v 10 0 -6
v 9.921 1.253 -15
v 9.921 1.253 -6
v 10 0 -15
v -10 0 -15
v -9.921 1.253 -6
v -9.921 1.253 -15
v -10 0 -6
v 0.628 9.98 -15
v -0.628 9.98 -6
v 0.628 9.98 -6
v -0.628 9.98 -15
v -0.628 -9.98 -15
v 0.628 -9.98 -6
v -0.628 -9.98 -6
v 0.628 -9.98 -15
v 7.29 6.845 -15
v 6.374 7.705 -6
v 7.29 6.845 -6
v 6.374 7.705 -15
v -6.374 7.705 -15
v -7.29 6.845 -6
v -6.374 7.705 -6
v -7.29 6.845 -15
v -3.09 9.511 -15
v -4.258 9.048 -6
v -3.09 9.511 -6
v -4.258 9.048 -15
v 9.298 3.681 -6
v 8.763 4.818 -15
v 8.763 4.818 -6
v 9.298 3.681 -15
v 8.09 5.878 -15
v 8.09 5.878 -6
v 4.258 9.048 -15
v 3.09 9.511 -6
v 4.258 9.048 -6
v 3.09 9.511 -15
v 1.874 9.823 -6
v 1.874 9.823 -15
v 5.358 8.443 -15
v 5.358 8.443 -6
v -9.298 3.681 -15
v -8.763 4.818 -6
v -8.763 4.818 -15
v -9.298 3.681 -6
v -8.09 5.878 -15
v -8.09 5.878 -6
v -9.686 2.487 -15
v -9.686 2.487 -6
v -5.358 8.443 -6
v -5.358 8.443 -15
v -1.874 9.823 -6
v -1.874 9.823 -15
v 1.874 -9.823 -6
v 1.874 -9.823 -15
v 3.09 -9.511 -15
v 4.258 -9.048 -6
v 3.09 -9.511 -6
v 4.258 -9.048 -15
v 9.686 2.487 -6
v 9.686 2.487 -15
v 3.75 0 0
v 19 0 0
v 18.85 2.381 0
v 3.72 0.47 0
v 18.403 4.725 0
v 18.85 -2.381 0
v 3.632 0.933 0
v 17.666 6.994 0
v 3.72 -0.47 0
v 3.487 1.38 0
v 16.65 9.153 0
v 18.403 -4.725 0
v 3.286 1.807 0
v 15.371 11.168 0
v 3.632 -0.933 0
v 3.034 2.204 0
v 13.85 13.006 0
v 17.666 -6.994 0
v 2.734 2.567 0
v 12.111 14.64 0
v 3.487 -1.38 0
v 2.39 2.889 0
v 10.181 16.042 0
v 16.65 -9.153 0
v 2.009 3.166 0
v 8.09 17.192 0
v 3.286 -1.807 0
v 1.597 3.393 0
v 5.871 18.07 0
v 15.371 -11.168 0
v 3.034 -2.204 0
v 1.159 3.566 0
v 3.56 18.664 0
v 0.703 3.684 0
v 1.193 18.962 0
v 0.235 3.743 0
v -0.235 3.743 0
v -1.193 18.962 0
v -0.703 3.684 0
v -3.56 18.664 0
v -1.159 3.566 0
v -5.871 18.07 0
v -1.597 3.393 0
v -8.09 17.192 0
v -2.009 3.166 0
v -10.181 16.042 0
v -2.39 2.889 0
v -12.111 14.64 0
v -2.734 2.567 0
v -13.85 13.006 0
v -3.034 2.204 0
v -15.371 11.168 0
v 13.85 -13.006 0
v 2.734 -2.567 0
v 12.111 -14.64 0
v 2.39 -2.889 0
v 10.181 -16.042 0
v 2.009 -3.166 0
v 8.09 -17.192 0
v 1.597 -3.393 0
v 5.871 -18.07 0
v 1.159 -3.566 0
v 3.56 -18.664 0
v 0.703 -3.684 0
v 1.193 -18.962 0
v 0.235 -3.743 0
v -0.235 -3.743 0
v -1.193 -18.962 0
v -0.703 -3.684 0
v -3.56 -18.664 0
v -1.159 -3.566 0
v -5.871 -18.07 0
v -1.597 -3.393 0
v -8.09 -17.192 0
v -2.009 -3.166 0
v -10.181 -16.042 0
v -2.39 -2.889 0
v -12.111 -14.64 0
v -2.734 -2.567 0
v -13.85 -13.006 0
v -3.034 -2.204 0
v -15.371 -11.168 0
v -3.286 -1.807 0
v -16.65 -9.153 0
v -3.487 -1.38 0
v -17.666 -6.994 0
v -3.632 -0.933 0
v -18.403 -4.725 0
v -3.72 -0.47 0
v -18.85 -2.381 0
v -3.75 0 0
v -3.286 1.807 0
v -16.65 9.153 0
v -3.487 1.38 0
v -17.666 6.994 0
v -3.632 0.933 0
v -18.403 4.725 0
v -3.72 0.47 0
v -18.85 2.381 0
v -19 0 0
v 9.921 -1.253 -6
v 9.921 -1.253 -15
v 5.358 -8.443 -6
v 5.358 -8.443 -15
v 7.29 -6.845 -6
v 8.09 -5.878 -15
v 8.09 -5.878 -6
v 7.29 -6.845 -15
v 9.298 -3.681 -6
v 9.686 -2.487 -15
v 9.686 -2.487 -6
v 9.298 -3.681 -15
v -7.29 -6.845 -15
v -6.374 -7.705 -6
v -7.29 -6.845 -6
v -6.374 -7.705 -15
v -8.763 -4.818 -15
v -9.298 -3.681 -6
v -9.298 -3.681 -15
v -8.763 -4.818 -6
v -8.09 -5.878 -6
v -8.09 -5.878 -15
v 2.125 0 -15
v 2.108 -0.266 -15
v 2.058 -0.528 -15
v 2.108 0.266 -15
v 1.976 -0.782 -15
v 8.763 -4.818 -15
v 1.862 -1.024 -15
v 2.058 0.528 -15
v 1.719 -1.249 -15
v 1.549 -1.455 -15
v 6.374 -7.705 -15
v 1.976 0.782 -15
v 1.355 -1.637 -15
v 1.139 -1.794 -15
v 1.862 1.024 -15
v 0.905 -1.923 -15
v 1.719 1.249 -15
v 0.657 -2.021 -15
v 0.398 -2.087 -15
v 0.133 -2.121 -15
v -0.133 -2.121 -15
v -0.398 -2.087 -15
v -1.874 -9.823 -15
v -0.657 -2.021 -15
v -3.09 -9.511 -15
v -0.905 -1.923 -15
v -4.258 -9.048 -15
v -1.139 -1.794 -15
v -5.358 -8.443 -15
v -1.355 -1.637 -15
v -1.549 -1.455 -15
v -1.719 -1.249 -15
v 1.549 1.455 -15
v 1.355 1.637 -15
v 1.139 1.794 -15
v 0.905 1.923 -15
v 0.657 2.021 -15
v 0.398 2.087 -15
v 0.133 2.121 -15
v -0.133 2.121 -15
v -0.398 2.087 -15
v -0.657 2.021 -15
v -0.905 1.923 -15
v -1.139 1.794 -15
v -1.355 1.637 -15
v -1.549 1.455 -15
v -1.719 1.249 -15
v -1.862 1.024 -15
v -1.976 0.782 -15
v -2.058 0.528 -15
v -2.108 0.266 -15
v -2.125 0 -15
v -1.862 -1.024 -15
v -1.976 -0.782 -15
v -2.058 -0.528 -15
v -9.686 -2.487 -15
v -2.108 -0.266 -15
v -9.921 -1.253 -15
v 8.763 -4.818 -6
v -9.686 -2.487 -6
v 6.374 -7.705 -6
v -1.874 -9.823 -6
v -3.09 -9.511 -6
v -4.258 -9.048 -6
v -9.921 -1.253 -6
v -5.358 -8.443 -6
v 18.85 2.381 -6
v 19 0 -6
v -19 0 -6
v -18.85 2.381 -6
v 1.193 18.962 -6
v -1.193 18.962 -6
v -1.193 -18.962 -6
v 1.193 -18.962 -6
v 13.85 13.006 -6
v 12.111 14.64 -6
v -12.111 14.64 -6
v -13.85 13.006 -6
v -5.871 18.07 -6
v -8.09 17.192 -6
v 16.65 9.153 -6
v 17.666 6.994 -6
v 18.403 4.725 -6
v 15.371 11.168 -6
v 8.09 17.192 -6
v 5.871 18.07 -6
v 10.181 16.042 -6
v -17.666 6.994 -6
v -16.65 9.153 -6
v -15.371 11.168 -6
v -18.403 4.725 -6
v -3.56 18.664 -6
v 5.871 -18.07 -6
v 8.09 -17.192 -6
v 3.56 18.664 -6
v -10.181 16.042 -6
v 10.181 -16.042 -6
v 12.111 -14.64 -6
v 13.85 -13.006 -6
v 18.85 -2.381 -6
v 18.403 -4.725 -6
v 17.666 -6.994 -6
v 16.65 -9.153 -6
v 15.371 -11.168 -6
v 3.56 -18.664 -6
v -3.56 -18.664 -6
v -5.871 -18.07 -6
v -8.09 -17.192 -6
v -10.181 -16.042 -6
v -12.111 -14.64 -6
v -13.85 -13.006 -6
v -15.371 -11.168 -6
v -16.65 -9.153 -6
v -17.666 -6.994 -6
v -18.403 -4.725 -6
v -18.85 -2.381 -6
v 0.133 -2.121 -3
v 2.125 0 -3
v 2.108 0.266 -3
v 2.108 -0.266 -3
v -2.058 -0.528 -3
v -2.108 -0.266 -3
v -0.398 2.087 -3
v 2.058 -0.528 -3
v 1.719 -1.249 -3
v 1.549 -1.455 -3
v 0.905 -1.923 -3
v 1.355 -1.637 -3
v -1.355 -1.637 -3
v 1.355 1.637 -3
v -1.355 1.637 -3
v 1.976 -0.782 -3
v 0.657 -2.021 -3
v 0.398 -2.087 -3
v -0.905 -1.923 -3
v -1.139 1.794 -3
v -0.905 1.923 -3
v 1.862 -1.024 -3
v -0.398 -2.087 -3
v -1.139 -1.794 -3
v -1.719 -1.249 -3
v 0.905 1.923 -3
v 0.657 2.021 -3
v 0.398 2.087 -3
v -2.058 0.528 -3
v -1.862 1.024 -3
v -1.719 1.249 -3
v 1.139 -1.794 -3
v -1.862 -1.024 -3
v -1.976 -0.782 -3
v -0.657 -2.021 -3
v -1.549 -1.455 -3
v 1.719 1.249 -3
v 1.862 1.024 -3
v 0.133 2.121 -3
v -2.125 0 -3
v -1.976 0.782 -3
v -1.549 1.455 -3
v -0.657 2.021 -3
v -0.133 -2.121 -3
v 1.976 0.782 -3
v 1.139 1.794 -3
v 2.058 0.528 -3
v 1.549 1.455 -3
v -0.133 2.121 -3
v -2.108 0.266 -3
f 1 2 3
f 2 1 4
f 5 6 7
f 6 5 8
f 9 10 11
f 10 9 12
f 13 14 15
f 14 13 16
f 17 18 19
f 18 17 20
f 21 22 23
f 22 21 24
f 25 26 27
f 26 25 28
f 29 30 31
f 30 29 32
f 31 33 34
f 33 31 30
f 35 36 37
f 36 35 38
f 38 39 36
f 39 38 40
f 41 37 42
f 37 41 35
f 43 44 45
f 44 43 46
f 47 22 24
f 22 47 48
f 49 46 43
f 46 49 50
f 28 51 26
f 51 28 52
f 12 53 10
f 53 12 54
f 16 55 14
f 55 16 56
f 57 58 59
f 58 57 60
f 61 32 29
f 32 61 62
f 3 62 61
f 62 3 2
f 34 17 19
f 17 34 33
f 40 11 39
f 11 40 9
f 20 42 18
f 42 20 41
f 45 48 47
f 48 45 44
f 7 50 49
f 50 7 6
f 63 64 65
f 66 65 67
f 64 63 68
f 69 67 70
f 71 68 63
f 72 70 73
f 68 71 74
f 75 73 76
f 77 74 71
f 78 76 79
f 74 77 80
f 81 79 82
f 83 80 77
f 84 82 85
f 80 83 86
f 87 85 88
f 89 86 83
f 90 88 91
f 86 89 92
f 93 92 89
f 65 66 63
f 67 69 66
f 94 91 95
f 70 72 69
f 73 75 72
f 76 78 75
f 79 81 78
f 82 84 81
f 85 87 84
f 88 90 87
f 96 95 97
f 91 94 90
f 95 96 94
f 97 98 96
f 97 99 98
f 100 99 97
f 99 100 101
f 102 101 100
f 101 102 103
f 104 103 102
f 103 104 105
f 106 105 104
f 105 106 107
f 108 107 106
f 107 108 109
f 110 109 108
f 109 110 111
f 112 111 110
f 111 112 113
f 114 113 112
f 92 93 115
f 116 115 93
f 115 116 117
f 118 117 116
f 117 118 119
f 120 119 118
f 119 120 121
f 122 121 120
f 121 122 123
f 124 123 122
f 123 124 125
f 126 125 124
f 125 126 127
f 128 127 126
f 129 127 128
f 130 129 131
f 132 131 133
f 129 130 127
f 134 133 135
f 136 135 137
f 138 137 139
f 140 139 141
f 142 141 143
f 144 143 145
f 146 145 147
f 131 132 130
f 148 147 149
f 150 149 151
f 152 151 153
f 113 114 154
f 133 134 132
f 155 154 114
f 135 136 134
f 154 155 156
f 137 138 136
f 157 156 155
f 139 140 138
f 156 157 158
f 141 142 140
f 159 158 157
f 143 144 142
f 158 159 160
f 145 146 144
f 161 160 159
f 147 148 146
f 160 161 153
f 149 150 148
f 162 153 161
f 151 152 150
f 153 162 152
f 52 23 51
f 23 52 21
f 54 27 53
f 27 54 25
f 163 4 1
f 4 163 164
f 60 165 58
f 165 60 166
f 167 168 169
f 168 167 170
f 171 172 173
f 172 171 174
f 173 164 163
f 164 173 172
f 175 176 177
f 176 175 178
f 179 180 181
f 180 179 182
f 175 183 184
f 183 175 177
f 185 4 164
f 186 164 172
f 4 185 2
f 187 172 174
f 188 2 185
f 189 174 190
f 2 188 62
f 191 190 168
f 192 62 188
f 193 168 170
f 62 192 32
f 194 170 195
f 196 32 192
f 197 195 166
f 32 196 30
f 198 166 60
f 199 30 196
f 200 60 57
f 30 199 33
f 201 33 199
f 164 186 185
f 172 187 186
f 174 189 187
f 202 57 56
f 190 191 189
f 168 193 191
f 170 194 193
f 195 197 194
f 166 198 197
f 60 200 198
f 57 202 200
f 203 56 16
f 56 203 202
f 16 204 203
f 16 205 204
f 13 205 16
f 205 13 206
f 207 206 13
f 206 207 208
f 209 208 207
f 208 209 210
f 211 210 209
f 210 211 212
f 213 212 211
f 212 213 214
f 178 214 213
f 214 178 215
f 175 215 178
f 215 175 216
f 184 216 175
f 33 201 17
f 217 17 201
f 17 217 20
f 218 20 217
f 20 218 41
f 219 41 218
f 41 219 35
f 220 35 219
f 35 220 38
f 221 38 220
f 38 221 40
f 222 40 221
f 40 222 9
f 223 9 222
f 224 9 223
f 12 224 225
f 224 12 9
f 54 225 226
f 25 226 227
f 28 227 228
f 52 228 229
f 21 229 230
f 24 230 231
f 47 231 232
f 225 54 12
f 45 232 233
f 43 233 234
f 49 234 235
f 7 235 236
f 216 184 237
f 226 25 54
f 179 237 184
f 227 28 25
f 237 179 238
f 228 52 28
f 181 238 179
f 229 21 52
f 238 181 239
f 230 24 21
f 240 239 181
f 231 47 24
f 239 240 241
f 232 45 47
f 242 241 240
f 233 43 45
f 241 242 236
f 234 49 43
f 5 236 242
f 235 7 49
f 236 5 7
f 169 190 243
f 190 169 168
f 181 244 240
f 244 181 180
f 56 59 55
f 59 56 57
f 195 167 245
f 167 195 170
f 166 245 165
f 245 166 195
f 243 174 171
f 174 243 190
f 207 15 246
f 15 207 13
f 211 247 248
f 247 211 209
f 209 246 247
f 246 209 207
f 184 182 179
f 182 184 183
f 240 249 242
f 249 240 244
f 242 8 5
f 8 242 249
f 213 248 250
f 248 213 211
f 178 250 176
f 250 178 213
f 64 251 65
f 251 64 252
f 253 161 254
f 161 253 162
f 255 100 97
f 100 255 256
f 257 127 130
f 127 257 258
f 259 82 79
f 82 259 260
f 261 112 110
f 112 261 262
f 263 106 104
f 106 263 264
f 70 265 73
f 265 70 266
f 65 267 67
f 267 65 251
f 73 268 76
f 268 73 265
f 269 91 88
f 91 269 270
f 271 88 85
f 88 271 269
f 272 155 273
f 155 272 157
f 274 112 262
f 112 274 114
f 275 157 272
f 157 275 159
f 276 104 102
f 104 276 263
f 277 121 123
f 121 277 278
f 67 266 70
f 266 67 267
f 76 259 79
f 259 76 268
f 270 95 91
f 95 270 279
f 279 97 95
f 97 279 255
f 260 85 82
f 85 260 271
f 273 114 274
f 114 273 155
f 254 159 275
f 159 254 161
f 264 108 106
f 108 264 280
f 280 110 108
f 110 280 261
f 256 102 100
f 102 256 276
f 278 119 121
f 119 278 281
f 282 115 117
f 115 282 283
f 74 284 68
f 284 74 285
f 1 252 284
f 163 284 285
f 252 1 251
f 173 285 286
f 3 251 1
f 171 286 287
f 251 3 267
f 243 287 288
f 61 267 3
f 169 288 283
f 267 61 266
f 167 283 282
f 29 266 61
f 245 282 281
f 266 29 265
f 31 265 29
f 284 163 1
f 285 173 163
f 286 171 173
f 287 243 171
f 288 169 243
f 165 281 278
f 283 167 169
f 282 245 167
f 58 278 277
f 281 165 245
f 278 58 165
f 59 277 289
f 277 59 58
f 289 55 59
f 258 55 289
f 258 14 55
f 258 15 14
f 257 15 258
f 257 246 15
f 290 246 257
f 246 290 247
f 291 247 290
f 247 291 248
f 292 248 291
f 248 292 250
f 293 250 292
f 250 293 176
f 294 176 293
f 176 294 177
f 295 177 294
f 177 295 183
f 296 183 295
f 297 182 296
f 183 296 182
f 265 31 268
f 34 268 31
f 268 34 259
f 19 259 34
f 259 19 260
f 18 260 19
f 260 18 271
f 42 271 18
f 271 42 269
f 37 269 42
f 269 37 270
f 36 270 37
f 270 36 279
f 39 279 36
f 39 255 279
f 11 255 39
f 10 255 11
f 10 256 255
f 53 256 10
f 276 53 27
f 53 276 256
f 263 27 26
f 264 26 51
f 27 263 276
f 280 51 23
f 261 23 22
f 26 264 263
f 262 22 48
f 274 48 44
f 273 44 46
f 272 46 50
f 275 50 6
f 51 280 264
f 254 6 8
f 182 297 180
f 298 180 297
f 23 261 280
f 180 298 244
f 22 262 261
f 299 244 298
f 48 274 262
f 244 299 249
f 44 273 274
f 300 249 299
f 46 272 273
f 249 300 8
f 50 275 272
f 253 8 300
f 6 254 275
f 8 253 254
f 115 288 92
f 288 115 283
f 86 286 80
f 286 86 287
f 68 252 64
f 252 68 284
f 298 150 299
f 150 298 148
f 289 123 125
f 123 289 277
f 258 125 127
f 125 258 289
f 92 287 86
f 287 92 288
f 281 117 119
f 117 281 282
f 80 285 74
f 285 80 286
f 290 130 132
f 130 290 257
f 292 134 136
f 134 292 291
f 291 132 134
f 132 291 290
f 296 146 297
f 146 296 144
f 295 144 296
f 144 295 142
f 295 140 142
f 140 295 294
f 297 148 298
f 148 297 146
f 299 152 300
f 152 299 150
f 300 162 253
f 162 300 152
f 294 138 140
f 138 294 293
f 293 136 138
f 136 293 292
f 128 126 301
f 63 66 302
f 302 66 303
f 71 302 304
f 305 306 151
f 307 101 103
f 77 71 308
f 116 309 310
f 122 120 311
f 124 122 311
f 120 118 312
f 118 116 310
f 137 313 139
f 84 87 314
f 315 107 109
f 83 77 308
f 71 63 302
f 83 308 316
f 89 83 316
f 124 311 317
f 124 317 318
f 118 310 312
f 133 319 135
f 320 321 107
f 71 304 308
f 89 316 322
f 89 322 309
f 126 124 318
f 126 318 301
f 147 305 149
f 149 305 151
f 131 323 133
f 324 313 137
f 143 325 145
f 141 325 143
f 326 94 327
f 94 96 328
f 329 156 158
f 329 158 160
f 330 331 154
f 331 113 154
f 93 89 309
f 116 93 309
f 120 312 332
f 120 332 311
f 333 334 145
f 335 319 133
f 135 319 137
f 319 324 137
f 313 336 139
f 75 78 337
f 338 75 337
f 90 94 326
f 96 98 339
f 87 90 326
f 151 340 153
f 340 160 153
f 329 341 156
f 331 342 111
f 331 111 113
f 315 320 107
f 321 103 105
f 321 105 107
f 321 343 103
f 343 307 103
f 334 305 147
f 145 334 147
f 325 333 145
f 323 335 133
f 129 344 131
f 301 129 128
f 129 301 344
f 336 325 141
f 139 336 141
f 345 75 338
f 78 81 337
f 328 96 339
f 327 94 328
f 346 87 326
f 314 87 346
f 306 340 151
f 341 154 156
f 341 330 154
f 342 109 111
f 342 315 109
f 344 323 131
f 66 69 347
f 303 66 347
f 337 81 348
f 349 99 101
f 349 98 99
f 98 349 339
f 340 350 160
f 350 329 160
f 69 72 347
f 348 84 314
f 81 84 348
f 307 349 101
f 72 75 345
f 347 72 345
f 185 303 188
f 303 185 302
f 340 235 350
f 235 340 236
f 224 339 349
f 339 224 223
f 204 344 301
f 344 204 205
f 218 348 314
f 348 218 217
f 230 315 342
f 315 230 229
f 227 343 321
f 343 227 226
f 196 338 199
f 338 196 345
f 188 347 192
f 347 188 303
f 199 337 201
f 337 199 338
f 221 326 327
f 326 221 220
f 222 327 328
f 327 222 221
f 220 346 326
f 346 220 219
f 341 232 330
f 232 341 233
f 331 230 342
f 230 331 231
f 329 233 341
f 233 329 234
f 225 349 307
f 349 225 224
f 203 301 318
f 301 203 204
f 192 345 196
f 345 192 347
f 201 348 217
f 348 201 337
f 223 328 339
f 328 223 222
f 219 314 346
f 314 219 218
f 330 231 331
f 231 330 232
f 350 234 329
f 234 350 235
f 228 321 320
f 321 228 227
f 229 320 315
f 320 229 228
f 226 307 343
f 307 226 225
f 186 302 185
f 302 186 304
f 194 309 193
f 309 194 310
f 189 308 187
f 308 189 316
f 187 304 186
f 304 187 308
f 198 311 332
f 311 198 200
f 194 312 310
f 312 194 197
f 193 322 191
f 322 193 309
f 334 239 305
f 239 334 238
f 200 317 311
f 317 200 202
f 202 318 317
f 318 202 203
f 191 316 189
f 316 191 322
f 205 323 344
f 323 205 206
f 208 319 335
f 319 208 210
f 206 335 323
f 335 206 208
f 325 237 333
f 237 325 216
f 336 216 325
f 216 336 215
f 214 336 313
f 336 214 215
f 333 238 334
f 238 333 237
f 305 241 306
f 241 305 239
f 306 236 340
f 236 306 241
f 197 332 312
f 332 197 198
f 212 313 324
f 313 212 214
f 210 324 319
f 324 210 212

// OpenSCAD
$fn = 50;


difference() {
	union() {
		translate(v = [0, 0, -15.0000000000]) {
			cylinder(h = 15, r = 10.0000000000);
		}
		translate(v = [0, 0, -6.0000000000]) {
			cylinder(h = 6, r = 19.0000000000);
		}
	}
	union() {
		translate(v = [0, 0, 0]) {
			rotate(a = [0, 0, 0]) {
				difference() {
					union() {
						#translate(v = [0, 0, -15.0000000000]) {
							cylinder(h = 15, r = 2.0000000000);
						}
						#translate(v = [0, 0, -3]) {
							cylinder(h = 3, r1 = 2.1250000000, r2 = 3.7500000000);
						}
						#translate(v = [0, 0, -15.0000000000]) {
							cylinder(h = 15, r = 2.1250000000);
						}
						#translate(v = [0, 0, -15.0000000000]) {
							cylinder(h = 15, r = 2.0000000000);
						}
					}
					union();
				}
			}
		}
	}
}
